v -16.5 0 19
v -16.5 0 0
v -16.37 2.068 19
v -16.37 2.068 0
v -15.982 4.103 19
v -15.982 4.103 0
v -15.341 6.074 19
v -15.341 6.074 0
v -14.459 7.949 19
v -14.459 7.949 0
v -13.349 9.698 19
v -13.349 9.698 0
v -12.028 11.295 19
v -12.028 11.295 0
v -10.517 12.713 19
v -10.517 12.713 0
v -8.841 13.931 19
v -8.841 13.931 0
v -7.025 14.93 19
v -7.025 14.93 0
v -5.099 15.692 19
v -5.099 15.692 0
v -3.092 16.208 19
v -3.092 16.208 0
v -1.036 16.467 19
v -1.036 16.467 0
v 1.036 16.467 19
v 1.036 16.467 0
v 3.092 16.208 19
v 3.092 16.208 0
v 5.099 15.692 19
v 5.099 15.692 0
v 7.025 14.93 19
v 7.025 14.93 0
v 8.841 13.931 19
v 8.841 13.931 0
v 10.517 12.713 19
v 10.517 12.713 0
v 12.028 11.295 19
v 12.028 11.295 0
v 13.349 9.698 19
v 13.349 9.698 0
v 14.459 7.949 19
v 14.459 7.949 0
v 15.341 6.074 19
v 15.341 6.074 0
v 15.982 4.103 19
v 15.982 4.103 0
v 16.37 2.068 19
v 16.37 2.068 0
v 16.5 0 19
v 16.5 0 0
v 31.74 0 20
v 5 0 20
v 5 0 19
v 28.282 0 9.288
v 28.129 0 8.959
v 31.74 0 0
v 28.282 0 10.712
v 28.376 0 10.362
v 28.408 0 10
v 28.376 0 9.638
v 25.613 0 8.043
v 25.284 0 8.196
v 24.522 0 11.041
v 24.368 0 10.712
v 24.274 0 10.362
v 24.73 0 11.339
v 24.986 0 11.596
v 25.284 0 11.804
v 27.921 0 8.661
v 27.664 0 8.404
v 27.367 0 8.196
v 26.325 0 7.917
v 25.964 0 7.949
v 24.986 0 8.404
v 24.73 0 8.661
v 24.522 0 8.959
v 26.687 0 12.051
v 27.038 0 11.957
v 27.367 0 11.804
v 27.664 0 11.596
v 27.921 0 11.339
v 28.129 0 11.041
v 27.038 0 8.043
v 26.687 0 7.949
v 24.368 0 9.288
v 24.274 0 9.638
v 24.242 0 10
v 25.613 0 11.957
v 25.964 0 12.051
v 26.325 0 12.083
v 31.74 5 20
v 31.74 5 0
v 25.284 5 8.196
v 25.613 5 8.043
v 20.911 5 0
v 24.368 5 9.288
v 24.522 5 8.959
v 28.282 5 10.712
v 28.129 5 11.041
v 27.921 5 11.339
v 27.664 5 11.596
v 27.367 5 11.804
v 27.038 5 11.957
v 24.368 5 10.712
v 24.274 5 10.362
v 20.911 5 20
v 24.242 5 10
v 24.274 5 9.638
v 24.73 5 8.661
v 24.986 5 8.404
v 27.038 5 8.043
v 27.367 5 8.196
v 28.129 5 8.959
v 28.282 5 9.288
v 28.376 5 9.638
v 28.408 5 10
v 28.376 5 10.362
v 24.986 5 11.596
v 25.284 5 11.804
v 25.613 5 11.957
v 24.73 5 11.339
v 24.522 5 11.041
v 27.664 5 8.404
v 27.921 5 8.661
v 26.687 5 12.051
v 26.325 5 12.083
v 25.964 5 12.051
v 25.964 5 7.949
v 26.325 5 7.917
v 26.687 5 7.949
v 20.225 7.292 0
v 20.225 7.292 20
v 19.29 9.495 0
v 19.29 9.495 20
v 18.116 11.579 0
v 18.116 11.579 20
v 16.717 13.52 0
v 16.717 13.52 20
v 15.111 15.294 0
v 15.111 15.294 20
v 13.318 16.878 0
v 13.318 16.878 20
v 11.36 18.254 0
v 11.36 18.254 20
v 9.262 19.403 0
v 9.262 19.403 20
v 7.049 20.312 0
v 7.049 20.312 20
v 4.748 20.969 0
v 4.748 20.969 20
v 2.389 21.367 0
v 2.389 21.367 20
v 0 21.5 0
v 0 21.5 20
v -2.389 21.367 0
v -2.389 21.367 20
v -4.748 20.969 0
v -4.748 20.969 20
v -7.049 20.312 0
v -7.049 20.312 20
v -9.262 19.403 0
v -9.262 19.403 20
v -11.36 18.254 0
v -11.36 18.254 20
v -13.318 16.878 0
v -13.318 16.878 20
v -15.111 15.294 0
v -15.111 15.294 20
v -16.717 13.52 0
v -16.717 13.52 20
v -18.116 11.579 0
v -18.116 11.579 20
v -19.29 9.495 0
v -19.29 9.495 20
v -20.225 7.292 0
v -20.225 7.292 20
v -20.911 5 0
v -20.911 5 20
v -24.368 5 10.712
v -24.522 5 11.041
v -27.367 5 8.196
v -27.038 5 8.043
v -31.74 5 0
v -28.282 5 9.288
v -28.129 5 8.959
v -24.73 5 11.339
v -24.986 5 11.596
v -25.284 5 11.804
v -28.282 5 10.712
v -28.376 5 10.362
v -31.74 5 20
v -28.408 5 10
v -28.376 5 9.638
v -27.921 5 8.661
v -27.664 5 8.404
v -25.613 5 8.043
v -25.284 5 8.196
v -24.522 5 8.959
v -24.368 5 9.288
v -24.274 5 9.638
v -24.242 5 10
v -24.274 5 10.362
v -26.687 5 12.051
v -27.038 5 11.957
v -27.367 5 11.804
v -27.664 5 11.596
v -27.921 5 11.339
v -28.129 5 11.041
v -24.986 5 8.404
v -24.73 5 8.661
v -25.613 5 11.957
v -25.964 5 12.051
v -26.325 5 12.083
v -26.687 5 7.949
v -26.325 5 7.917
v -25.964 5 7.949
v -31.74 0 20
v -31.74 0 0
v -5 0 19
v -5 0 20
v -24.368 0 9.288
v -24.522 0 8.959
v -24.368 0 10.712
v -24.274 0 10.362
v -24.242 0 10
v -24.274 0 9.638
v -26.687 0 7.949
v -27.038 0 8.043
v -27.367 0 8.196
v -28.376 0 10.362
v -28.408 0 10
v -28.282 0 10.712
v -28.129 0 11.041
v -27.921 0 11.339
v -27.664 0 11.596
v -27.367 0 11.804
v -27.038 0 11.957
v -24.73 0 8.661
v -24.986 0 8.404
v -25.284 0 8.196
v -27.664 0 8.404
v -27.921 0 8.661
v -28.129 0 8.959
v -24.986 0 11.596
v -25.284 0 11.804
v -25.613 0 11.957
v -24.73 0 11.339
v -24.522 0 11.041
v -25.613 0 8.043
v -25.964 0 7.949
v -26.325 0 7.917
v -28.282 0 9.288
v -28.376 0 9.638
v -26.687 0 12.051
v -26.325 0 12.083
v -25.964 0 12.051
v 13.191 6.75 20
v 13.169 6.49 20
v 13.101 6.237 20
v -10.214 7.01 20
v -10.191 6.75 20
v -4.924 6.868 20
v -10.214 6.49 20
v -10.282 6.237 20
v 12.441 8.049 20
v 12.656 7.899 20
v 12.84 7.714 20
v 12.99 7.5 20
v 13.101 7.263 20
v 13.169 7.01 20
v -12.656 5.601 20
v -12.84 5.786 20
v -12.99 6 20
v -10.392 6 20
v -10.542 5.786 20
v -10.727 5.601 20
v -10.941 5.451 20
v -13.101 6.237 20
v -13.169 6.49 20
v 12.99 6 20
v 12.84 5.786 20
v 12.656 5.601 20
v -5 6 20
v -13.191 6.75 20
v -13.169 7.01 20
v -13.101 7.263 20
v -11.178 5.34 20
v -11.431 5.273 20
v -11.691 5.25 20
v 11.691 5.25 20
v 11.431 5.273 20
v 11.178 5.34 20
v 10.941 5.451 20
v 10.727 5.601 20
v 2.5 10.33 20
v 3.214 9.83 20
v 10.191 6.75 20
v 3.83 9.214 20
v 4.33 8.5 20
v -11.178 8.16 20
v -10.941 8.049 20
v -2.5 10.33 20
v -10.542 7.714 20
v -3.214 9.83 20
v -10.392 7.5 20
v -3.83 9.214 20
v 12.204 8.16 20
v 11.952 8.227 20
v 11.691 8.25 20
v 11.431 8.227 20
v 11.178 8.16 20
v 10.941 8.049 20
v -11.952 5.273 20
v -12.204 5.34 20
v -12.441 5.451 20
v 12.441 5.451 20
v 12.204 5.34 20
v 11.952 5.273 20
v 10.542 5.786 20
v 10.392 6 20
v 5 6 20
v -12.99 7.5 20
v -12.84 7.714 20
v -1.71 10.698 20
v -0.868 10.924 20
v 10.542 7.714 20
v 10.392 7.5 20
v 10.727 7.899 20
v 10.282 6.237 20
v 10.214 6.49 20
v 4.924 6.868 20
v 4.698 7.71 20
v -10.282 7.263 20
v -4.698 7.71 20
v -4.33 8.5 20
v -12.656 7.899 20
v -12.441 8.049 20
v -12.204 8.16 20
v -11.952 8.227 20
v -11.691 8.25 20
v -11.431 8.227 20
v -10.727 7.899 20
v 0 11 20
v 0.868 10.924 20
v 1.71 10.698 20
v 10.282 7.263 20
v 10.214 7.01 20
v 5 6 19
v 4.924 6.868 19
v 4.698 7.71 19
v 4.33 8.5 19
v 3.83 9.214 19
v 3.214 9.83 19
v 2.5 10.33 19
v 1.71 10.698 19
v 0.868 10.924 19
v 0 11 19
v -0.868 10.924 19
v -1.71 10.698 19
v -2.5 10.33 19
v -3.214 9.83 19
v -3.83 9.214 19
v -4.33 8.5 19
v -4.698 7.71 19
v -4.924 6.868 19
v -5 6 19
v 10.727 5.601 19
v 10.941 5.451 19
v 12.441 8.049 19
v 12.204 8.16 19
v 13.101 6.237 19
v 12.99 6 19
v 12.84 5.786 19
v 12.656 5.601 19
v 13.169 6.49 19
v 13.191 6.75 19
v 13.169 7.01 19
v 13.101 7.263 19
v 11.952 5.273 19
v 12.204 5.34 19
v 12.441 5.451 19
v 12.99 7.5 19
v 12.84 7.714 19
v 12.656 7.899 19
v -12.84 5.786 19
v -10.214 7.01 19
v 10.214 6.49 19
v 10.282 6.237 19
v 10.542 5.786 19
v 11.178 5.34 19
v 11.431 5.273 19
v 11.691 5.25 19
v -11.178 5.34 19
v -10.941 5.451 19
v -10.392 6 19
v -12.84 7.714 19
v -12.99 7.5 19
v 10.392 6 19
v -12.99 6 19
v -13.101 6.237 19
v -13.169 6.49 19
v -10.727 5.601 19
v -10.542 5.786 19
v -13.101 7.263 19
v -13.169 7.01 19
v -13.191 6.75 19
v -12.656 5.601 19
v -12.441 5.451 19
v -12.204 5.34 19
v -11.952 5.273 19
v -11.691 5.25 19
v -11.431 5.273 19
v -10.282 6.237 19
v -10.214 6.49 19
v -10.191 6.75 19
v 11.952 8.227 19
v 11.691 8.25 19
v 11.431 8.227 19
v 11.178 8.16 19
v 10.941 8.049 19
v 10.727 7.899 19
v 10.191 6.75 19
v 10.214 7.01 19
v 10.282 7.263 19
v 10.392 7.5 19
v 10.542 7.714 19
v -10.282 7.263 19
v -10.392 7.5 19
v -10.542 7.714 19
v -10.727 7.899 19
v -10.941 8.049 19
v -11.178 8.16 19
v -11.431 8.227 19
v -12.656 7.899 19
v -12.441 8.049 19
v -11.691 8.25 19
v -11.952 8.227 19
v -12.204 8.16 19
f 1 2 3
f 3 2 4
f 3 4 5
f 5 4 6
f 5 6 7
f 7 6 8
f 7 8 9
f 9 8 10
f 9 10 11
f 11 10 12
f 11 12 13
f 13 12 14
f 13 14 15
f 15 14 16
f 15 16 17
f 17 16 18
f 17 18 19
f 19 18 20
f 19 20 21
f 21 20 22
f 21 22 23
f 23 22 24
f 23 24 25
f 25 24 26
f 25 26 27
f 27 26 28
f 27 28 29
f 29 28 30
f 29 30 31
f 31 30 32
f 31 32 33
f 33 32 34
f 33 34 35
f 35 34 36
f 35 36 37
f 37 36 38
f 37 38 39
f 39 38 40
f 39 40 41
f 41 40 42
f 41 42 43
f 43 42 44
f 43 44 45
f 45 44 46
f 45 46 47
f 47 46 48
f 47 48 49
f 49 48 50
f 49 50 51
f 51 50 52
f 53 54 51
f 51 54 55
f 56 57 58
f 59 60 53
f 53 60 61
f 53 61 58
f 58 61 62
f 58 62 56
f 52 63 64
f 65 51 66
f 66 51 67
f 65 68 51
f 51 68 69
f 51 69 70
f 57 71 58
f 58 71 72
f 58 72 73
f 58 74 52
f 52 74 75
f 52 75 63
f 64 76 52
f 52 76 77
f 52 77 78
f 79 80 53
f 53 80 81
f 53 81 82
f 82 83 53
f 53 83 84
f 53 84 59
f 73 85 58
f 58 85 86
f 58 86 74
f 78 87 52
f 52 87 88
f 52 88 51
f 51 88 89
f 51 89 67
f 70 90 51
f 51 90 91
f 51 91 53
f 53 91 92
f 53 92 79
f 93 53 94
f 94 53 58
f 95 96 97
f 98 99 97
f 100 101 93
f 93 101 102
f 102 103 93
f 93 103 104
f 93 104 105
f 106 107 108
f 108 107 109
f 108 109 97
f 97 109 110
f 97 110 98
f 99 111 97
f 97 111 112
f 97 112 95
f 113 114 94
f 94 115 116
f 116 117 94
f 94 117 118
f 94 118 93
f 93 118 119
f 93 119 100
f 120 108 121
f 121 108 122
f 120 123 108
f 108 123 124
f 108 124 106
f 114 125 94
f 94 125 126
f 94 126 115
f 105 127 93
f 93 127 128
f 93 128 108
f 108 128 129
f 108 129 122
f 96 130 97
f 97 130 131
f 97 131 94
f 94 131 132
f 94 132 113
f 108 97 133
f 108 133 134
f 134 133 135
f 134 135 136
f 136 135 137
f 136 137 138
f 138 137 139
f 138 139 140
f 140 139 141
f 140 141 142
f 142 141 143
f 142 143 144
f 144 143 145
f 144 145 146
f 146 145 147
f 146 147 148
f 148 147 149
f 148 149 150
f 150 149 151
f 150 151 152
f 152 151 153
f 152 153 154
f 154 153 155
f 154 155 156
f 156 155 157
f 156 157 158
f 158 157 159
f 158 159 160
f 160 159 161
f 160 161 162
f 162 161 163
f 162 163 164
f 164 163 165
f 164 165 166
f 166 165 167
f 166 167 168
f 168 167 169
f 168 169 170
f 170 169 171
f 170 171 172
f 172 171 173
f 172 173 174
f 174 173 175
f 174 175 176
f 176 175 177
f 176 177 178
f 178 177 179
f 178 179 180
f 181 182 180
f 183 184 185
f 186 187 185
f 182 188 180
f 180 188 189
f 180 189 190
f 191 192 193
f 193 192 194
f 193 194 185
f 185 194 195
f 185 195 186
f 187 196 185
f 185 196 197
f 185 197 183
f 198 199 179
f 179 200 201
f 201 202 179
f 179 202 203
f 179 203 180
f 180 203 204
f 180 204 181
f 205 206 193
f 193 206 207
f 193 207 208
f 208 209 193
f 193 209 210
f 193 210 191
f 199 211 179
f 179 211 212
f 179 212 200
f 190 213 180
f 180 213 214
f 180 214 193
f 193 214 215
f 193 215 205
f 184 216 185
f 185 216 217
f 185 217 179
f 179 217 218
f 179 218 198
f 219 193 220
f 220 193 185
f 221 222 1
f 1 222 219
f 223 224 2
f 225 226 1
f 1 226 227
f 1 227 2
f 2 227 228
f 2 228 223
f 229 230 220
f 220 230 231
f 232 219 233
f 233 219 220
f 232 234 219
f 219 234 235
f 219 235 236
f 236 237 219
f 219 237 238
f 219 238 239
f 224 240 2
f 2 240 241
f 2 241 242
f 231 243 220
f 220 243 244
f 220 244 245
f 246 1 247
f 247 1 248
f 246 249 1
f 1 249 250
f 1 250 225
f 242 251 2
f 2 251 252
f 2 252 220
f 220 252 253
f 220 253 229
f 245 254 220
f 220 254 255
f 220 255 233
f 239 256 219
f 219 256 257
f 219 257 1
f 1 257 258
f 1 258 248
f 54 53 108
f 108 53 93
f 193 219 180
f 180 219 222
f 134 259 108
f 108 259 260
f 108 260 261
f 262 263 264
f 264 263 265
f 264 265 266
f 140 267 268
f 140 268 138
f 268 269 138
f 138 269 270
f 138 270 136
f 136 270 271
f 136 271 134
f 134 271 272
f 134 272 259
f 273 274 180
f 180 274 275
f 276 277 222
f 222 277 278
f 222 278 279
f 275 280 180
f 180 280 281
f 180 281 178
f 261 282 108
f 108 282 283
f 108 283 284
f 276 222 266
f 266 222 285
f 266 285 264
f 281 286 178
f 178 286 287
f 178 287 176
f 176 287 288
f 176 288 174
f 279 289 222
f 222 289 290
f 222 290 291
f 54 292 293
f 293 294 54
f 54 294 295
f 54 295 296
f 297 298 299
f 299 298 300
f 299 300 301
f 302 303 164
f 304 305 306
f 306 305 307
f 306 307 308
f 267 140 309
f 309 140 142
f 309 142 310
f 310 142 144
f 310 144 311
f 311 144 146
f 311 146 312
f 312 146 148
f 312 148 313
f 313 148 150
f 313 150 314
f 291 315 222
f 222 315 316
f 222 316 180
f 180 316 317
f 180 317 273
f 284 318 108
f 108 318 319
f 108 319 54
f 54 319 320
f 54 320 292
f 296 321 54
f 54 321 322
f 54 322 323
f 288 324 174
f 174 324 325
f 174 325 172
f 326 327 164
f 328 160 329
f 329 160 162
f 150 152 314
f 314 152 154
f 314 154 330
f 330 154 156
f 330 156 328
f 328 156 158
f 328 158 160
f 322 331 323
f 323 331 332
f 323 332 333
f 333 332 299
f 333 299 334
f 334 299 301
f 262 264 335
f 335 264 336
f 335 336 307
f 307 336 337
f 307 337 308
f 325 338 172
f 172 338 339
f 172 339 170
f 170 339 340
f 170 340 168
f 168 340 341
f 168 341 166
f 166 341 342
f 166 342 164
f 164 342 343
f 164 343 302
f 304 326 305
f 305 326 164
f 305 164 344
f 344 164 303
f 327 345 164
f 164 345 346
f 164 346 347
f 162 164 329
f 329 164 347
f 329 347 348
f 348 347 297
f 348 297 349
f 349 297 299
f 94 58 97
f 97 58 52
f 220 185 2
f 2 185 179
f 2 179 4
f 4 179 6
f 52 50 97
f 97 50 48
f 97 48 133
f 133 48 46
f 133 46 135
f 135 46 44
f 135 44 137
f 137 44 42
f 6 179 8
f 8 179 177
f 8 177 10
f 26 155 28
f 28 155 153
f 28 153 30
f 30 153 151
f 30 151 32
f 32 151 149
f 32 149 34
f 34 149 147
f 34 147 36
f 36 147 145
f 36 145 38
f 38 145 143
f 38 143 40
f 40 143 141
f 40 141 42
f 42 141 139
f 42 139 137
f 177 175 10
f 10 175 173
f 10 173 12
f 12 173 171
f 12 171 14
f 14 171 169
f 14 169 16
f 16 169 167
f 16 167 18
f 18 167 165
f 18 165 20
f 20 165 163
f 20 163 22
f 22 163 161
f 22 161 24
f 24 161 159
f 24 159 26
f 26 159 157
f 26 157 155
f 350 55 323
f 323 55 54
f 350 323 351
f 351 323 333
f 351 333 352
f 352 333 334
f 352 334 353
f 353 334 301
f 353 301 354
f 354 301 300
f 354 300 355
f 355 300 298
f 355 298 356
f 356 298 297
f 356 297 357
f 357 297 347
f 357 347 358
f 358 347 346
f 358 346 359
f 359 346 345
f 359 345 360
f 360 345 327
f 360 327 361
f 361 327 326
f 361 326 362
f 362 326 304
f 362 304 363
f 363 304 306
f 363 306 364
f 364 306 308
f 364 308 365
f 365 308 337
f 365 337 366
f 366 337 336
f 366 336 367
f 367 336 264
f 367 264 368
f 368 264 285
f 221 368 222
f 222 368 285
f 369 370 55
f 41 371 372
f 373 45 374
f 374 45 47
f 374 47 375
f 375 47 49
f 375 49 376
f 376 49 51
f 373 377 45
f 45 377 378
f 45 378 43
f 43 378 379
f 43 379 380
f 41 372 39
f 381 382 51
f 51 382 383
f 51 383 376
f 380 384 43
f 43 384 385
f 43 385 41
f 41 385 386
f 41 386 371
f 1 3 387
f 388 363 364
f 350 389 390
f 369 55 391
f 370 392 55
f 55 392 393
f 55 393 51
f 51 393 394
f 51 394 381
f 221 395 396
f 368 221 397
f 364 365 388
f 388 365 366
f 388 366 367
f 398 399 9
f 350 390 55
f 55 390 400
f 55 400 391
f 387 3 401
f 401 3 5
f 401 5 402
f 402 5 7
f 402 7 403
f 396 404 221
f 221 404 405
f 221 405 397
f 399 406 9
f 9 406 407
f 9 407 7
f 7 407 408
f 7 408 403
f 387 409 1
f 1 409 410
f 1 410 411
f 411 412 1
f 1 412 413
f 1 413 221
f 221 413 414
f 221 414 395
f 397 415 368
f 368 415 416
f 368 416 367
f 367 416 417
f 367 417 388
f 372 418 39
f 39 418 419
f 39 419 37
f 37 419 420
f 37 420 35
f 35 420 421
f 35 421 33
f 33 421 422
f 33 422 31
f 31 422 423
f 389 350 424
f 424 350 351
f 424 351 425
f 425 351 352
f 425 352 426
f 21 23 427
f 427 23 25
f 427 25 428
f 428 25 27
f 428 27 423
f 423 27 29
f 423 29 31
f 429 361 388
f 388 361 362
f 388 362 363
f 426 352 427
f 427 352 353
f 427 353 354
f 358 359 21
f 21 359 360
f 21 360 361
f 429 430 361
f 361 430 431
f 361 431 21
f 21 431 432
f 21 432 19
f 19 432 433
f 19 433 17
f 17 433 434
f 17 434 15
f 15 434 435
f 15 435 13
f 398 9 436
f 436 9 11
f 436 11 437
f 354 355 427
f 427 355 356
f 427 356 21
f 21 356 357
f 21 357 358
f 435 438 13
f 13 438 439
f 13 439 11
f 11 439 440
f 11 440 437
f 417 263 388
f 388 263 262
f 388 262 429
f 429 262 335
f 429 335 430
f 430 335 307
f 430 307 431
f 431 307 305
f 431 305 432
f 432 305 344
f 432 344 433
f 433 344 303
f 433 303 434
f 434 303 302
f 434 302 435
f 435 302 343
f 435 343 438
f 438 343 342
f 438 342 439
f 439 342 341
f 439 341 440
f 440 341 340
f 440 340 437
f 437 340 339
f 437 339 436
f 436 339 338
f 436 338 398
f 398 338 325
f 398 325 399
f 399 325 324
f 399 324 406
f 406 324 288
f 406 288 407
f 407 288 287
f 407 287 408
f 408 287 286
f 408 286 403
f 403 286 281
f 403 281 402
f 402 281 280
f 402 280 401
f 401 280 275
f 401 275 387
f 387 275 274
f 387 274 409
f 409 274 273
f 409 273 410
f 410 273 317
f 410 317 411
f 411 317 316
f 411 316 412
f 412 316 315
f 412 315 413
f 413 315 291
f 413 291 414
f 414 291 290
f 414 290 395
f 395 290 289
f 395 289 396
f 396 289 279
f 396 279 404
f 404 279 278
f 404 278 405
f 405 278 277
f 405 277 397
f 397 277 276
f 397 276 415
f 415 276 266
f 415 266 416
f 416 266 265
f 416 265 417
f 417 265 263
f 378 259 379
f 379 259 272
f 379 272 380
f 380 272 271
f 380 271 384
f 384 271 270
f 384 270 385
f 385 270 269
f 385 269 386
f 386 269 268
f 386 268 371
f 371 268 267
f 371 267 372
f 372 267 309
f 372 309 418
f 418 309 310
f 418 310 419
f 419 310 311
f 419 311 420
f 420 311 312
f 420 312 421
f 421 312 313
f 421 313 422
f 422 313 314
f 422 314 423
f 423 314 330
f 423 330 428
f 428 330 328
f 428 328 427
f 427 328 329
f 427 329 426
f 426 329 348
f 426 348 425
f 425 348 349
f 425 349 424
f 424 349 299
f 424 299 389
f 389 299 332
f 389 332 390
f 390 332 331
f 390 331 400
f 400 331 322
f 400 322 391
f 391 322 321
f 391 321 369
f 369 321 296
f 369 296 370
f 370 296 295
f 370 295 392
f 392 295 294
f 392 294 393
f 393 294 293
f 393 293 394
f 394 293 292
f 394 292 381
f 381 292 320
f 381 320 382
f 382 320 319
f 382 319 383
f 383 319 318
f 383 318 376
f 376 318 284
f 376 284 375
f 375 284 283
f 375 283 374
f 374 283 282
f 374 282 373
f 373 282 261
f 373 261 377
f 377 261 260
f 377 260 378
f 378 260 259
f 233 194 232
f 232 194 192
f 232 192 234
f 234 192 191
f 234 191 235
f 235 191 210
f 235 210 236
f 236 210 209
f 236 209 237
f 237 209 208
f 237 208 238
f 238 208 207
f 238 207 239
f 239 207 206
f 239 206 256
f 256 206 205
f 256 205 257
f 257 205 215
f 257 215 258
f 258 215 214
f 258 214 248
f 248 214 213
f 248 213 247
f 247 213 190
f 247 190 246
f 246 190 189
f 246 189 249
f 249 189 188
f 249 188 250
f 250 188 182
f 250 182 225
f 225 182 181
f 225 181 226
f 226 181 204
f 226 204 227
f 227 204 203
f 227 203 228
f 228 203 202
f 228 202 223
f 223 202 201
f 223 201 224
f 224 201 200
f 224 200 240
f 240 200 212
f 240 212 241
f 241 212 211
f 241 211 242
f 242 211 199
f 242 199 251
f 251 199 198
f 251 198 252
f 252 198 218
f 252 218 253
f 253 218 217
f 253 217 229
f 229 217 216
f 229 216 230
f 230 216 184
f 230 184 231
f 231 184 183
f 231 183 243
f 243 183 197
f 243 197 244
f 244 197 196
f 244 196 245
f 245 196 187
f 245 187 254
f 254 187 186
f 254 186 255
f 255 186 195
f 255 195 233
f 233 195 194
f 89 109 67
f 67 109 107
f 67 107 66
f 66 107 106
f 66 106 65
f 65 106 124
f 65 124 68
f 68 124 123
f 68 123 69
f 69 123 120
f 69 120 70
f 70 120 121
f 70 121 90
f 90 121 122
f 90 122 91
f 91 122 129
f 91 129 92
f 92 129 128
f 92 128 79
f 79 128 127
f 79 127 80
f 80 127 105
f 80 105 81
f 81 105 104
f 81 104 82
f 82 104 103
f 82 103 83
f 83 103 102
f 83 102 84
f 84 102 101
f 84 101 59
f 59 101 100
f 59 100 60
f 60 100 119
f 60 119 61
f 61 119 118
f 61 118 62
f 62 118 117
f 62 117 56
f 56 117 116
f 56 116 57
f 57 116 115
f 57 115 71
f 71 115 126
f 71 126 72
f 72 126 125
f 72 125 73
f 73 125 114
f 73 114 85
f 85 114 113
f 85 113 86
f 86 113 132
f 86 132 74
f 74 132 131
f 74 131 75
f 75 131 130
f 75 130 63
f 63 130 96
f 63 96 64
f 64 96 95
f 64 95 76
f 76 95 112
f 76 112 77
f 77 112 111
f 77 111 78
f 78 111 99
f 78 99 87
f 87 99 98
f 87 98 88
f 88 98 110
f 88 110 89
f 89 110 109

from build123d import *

# Parameters (mm, degrees)
BOSS_EXTRUDE1_DEPTH = 20
BOSS_EXTRUDE2_START = -1
BOSS_EXTRUDE2_DEPTH = 1
SKETCH3_R           = 1.5
CUT_EXTRUDE1_DEPTH  = 44.239768732
SKETCH4_R           = 2.0828
CUT_EXTRUDE2_DEPTH  = 41.983869998


with BuildPart() as part:
    # Sketch1 → Boss-Extrude1 (new body)
    with BuildSketch(Plane.XY):
        with BuildLine():
            Line((-16.5, 0), (-31.74, 0))
            Line((-31.74, 0), (-31.74, 5))
            Line((-31.74, 5), (-20.910523666, 5))
            ThreePointArc((-20.910523666, 5), (0, 21.5), (20.910523666, 5))
            Line((20.910523666, 5), (31.74, 5))
            Line((31.74, 5), (31.74, 0))
            Line((31.74, 0), (16.5, 0))
            ThreePointArc((16.5, 0), (0, 16.5), (-16.5, 0))
        make_face()
    extrude(amount=BOSS_EXTRUDE1_DEPTH)

    # Sketch2 → Boss-Extrude2 (add)
    with BuildSketch(Plane.XY.offset(20).offset(BOSS_EXTRUDE2_START)):
        with BuildLine():
            Line((5, 0), (16.5, 0))
            ThreePointArc((16.5, 0), (0, 16.5), (-16.5, 0))
            Line((-16.5, 0), (-5, 0))
            Line((-5, 0), (-5, 6))
            ThreePointArc((-5, 6), (0, 11), (5, 6))
            Line((5, 6), (5, 0))
        make_face()
    extrude(amount=BOSS_EXTRUDE2_DEPTH)

    # Sketch3 → Cut-Extrude1 (cut, through all)
    with BuildSketch(Plane.XY.offset(20)):
        with Locations((-11.691342951, 6.75)):
            Circle(SKETCH3_R)
        with Locations((11.691342951, 6.75)):
            Circle(SKETCH3_R)
    extrude(amount=-CUT_EXTRUDE1_DEPTH, mode=Mode.SUBTRACT)

    # Sketch4 → Cut-Extrude2 (cut, through all)
    with BuildSketch(Plane(origin=(0, 5, 0), x_dir=(1, 0, 0), z_dir=(0, 1, 0))):
        with Locations(Location((26.325261833, -10, 0), (0, 0, 180))):
            Circle(SKETCH4_R)
        with Locations((-26.325261833, -10)):
            Circle(SKETCH4_R)
    extrude(amount=-CUT_EXTRUDE2_DEPTH, mode=Mode.SUBTRACT)


solid = part.part
